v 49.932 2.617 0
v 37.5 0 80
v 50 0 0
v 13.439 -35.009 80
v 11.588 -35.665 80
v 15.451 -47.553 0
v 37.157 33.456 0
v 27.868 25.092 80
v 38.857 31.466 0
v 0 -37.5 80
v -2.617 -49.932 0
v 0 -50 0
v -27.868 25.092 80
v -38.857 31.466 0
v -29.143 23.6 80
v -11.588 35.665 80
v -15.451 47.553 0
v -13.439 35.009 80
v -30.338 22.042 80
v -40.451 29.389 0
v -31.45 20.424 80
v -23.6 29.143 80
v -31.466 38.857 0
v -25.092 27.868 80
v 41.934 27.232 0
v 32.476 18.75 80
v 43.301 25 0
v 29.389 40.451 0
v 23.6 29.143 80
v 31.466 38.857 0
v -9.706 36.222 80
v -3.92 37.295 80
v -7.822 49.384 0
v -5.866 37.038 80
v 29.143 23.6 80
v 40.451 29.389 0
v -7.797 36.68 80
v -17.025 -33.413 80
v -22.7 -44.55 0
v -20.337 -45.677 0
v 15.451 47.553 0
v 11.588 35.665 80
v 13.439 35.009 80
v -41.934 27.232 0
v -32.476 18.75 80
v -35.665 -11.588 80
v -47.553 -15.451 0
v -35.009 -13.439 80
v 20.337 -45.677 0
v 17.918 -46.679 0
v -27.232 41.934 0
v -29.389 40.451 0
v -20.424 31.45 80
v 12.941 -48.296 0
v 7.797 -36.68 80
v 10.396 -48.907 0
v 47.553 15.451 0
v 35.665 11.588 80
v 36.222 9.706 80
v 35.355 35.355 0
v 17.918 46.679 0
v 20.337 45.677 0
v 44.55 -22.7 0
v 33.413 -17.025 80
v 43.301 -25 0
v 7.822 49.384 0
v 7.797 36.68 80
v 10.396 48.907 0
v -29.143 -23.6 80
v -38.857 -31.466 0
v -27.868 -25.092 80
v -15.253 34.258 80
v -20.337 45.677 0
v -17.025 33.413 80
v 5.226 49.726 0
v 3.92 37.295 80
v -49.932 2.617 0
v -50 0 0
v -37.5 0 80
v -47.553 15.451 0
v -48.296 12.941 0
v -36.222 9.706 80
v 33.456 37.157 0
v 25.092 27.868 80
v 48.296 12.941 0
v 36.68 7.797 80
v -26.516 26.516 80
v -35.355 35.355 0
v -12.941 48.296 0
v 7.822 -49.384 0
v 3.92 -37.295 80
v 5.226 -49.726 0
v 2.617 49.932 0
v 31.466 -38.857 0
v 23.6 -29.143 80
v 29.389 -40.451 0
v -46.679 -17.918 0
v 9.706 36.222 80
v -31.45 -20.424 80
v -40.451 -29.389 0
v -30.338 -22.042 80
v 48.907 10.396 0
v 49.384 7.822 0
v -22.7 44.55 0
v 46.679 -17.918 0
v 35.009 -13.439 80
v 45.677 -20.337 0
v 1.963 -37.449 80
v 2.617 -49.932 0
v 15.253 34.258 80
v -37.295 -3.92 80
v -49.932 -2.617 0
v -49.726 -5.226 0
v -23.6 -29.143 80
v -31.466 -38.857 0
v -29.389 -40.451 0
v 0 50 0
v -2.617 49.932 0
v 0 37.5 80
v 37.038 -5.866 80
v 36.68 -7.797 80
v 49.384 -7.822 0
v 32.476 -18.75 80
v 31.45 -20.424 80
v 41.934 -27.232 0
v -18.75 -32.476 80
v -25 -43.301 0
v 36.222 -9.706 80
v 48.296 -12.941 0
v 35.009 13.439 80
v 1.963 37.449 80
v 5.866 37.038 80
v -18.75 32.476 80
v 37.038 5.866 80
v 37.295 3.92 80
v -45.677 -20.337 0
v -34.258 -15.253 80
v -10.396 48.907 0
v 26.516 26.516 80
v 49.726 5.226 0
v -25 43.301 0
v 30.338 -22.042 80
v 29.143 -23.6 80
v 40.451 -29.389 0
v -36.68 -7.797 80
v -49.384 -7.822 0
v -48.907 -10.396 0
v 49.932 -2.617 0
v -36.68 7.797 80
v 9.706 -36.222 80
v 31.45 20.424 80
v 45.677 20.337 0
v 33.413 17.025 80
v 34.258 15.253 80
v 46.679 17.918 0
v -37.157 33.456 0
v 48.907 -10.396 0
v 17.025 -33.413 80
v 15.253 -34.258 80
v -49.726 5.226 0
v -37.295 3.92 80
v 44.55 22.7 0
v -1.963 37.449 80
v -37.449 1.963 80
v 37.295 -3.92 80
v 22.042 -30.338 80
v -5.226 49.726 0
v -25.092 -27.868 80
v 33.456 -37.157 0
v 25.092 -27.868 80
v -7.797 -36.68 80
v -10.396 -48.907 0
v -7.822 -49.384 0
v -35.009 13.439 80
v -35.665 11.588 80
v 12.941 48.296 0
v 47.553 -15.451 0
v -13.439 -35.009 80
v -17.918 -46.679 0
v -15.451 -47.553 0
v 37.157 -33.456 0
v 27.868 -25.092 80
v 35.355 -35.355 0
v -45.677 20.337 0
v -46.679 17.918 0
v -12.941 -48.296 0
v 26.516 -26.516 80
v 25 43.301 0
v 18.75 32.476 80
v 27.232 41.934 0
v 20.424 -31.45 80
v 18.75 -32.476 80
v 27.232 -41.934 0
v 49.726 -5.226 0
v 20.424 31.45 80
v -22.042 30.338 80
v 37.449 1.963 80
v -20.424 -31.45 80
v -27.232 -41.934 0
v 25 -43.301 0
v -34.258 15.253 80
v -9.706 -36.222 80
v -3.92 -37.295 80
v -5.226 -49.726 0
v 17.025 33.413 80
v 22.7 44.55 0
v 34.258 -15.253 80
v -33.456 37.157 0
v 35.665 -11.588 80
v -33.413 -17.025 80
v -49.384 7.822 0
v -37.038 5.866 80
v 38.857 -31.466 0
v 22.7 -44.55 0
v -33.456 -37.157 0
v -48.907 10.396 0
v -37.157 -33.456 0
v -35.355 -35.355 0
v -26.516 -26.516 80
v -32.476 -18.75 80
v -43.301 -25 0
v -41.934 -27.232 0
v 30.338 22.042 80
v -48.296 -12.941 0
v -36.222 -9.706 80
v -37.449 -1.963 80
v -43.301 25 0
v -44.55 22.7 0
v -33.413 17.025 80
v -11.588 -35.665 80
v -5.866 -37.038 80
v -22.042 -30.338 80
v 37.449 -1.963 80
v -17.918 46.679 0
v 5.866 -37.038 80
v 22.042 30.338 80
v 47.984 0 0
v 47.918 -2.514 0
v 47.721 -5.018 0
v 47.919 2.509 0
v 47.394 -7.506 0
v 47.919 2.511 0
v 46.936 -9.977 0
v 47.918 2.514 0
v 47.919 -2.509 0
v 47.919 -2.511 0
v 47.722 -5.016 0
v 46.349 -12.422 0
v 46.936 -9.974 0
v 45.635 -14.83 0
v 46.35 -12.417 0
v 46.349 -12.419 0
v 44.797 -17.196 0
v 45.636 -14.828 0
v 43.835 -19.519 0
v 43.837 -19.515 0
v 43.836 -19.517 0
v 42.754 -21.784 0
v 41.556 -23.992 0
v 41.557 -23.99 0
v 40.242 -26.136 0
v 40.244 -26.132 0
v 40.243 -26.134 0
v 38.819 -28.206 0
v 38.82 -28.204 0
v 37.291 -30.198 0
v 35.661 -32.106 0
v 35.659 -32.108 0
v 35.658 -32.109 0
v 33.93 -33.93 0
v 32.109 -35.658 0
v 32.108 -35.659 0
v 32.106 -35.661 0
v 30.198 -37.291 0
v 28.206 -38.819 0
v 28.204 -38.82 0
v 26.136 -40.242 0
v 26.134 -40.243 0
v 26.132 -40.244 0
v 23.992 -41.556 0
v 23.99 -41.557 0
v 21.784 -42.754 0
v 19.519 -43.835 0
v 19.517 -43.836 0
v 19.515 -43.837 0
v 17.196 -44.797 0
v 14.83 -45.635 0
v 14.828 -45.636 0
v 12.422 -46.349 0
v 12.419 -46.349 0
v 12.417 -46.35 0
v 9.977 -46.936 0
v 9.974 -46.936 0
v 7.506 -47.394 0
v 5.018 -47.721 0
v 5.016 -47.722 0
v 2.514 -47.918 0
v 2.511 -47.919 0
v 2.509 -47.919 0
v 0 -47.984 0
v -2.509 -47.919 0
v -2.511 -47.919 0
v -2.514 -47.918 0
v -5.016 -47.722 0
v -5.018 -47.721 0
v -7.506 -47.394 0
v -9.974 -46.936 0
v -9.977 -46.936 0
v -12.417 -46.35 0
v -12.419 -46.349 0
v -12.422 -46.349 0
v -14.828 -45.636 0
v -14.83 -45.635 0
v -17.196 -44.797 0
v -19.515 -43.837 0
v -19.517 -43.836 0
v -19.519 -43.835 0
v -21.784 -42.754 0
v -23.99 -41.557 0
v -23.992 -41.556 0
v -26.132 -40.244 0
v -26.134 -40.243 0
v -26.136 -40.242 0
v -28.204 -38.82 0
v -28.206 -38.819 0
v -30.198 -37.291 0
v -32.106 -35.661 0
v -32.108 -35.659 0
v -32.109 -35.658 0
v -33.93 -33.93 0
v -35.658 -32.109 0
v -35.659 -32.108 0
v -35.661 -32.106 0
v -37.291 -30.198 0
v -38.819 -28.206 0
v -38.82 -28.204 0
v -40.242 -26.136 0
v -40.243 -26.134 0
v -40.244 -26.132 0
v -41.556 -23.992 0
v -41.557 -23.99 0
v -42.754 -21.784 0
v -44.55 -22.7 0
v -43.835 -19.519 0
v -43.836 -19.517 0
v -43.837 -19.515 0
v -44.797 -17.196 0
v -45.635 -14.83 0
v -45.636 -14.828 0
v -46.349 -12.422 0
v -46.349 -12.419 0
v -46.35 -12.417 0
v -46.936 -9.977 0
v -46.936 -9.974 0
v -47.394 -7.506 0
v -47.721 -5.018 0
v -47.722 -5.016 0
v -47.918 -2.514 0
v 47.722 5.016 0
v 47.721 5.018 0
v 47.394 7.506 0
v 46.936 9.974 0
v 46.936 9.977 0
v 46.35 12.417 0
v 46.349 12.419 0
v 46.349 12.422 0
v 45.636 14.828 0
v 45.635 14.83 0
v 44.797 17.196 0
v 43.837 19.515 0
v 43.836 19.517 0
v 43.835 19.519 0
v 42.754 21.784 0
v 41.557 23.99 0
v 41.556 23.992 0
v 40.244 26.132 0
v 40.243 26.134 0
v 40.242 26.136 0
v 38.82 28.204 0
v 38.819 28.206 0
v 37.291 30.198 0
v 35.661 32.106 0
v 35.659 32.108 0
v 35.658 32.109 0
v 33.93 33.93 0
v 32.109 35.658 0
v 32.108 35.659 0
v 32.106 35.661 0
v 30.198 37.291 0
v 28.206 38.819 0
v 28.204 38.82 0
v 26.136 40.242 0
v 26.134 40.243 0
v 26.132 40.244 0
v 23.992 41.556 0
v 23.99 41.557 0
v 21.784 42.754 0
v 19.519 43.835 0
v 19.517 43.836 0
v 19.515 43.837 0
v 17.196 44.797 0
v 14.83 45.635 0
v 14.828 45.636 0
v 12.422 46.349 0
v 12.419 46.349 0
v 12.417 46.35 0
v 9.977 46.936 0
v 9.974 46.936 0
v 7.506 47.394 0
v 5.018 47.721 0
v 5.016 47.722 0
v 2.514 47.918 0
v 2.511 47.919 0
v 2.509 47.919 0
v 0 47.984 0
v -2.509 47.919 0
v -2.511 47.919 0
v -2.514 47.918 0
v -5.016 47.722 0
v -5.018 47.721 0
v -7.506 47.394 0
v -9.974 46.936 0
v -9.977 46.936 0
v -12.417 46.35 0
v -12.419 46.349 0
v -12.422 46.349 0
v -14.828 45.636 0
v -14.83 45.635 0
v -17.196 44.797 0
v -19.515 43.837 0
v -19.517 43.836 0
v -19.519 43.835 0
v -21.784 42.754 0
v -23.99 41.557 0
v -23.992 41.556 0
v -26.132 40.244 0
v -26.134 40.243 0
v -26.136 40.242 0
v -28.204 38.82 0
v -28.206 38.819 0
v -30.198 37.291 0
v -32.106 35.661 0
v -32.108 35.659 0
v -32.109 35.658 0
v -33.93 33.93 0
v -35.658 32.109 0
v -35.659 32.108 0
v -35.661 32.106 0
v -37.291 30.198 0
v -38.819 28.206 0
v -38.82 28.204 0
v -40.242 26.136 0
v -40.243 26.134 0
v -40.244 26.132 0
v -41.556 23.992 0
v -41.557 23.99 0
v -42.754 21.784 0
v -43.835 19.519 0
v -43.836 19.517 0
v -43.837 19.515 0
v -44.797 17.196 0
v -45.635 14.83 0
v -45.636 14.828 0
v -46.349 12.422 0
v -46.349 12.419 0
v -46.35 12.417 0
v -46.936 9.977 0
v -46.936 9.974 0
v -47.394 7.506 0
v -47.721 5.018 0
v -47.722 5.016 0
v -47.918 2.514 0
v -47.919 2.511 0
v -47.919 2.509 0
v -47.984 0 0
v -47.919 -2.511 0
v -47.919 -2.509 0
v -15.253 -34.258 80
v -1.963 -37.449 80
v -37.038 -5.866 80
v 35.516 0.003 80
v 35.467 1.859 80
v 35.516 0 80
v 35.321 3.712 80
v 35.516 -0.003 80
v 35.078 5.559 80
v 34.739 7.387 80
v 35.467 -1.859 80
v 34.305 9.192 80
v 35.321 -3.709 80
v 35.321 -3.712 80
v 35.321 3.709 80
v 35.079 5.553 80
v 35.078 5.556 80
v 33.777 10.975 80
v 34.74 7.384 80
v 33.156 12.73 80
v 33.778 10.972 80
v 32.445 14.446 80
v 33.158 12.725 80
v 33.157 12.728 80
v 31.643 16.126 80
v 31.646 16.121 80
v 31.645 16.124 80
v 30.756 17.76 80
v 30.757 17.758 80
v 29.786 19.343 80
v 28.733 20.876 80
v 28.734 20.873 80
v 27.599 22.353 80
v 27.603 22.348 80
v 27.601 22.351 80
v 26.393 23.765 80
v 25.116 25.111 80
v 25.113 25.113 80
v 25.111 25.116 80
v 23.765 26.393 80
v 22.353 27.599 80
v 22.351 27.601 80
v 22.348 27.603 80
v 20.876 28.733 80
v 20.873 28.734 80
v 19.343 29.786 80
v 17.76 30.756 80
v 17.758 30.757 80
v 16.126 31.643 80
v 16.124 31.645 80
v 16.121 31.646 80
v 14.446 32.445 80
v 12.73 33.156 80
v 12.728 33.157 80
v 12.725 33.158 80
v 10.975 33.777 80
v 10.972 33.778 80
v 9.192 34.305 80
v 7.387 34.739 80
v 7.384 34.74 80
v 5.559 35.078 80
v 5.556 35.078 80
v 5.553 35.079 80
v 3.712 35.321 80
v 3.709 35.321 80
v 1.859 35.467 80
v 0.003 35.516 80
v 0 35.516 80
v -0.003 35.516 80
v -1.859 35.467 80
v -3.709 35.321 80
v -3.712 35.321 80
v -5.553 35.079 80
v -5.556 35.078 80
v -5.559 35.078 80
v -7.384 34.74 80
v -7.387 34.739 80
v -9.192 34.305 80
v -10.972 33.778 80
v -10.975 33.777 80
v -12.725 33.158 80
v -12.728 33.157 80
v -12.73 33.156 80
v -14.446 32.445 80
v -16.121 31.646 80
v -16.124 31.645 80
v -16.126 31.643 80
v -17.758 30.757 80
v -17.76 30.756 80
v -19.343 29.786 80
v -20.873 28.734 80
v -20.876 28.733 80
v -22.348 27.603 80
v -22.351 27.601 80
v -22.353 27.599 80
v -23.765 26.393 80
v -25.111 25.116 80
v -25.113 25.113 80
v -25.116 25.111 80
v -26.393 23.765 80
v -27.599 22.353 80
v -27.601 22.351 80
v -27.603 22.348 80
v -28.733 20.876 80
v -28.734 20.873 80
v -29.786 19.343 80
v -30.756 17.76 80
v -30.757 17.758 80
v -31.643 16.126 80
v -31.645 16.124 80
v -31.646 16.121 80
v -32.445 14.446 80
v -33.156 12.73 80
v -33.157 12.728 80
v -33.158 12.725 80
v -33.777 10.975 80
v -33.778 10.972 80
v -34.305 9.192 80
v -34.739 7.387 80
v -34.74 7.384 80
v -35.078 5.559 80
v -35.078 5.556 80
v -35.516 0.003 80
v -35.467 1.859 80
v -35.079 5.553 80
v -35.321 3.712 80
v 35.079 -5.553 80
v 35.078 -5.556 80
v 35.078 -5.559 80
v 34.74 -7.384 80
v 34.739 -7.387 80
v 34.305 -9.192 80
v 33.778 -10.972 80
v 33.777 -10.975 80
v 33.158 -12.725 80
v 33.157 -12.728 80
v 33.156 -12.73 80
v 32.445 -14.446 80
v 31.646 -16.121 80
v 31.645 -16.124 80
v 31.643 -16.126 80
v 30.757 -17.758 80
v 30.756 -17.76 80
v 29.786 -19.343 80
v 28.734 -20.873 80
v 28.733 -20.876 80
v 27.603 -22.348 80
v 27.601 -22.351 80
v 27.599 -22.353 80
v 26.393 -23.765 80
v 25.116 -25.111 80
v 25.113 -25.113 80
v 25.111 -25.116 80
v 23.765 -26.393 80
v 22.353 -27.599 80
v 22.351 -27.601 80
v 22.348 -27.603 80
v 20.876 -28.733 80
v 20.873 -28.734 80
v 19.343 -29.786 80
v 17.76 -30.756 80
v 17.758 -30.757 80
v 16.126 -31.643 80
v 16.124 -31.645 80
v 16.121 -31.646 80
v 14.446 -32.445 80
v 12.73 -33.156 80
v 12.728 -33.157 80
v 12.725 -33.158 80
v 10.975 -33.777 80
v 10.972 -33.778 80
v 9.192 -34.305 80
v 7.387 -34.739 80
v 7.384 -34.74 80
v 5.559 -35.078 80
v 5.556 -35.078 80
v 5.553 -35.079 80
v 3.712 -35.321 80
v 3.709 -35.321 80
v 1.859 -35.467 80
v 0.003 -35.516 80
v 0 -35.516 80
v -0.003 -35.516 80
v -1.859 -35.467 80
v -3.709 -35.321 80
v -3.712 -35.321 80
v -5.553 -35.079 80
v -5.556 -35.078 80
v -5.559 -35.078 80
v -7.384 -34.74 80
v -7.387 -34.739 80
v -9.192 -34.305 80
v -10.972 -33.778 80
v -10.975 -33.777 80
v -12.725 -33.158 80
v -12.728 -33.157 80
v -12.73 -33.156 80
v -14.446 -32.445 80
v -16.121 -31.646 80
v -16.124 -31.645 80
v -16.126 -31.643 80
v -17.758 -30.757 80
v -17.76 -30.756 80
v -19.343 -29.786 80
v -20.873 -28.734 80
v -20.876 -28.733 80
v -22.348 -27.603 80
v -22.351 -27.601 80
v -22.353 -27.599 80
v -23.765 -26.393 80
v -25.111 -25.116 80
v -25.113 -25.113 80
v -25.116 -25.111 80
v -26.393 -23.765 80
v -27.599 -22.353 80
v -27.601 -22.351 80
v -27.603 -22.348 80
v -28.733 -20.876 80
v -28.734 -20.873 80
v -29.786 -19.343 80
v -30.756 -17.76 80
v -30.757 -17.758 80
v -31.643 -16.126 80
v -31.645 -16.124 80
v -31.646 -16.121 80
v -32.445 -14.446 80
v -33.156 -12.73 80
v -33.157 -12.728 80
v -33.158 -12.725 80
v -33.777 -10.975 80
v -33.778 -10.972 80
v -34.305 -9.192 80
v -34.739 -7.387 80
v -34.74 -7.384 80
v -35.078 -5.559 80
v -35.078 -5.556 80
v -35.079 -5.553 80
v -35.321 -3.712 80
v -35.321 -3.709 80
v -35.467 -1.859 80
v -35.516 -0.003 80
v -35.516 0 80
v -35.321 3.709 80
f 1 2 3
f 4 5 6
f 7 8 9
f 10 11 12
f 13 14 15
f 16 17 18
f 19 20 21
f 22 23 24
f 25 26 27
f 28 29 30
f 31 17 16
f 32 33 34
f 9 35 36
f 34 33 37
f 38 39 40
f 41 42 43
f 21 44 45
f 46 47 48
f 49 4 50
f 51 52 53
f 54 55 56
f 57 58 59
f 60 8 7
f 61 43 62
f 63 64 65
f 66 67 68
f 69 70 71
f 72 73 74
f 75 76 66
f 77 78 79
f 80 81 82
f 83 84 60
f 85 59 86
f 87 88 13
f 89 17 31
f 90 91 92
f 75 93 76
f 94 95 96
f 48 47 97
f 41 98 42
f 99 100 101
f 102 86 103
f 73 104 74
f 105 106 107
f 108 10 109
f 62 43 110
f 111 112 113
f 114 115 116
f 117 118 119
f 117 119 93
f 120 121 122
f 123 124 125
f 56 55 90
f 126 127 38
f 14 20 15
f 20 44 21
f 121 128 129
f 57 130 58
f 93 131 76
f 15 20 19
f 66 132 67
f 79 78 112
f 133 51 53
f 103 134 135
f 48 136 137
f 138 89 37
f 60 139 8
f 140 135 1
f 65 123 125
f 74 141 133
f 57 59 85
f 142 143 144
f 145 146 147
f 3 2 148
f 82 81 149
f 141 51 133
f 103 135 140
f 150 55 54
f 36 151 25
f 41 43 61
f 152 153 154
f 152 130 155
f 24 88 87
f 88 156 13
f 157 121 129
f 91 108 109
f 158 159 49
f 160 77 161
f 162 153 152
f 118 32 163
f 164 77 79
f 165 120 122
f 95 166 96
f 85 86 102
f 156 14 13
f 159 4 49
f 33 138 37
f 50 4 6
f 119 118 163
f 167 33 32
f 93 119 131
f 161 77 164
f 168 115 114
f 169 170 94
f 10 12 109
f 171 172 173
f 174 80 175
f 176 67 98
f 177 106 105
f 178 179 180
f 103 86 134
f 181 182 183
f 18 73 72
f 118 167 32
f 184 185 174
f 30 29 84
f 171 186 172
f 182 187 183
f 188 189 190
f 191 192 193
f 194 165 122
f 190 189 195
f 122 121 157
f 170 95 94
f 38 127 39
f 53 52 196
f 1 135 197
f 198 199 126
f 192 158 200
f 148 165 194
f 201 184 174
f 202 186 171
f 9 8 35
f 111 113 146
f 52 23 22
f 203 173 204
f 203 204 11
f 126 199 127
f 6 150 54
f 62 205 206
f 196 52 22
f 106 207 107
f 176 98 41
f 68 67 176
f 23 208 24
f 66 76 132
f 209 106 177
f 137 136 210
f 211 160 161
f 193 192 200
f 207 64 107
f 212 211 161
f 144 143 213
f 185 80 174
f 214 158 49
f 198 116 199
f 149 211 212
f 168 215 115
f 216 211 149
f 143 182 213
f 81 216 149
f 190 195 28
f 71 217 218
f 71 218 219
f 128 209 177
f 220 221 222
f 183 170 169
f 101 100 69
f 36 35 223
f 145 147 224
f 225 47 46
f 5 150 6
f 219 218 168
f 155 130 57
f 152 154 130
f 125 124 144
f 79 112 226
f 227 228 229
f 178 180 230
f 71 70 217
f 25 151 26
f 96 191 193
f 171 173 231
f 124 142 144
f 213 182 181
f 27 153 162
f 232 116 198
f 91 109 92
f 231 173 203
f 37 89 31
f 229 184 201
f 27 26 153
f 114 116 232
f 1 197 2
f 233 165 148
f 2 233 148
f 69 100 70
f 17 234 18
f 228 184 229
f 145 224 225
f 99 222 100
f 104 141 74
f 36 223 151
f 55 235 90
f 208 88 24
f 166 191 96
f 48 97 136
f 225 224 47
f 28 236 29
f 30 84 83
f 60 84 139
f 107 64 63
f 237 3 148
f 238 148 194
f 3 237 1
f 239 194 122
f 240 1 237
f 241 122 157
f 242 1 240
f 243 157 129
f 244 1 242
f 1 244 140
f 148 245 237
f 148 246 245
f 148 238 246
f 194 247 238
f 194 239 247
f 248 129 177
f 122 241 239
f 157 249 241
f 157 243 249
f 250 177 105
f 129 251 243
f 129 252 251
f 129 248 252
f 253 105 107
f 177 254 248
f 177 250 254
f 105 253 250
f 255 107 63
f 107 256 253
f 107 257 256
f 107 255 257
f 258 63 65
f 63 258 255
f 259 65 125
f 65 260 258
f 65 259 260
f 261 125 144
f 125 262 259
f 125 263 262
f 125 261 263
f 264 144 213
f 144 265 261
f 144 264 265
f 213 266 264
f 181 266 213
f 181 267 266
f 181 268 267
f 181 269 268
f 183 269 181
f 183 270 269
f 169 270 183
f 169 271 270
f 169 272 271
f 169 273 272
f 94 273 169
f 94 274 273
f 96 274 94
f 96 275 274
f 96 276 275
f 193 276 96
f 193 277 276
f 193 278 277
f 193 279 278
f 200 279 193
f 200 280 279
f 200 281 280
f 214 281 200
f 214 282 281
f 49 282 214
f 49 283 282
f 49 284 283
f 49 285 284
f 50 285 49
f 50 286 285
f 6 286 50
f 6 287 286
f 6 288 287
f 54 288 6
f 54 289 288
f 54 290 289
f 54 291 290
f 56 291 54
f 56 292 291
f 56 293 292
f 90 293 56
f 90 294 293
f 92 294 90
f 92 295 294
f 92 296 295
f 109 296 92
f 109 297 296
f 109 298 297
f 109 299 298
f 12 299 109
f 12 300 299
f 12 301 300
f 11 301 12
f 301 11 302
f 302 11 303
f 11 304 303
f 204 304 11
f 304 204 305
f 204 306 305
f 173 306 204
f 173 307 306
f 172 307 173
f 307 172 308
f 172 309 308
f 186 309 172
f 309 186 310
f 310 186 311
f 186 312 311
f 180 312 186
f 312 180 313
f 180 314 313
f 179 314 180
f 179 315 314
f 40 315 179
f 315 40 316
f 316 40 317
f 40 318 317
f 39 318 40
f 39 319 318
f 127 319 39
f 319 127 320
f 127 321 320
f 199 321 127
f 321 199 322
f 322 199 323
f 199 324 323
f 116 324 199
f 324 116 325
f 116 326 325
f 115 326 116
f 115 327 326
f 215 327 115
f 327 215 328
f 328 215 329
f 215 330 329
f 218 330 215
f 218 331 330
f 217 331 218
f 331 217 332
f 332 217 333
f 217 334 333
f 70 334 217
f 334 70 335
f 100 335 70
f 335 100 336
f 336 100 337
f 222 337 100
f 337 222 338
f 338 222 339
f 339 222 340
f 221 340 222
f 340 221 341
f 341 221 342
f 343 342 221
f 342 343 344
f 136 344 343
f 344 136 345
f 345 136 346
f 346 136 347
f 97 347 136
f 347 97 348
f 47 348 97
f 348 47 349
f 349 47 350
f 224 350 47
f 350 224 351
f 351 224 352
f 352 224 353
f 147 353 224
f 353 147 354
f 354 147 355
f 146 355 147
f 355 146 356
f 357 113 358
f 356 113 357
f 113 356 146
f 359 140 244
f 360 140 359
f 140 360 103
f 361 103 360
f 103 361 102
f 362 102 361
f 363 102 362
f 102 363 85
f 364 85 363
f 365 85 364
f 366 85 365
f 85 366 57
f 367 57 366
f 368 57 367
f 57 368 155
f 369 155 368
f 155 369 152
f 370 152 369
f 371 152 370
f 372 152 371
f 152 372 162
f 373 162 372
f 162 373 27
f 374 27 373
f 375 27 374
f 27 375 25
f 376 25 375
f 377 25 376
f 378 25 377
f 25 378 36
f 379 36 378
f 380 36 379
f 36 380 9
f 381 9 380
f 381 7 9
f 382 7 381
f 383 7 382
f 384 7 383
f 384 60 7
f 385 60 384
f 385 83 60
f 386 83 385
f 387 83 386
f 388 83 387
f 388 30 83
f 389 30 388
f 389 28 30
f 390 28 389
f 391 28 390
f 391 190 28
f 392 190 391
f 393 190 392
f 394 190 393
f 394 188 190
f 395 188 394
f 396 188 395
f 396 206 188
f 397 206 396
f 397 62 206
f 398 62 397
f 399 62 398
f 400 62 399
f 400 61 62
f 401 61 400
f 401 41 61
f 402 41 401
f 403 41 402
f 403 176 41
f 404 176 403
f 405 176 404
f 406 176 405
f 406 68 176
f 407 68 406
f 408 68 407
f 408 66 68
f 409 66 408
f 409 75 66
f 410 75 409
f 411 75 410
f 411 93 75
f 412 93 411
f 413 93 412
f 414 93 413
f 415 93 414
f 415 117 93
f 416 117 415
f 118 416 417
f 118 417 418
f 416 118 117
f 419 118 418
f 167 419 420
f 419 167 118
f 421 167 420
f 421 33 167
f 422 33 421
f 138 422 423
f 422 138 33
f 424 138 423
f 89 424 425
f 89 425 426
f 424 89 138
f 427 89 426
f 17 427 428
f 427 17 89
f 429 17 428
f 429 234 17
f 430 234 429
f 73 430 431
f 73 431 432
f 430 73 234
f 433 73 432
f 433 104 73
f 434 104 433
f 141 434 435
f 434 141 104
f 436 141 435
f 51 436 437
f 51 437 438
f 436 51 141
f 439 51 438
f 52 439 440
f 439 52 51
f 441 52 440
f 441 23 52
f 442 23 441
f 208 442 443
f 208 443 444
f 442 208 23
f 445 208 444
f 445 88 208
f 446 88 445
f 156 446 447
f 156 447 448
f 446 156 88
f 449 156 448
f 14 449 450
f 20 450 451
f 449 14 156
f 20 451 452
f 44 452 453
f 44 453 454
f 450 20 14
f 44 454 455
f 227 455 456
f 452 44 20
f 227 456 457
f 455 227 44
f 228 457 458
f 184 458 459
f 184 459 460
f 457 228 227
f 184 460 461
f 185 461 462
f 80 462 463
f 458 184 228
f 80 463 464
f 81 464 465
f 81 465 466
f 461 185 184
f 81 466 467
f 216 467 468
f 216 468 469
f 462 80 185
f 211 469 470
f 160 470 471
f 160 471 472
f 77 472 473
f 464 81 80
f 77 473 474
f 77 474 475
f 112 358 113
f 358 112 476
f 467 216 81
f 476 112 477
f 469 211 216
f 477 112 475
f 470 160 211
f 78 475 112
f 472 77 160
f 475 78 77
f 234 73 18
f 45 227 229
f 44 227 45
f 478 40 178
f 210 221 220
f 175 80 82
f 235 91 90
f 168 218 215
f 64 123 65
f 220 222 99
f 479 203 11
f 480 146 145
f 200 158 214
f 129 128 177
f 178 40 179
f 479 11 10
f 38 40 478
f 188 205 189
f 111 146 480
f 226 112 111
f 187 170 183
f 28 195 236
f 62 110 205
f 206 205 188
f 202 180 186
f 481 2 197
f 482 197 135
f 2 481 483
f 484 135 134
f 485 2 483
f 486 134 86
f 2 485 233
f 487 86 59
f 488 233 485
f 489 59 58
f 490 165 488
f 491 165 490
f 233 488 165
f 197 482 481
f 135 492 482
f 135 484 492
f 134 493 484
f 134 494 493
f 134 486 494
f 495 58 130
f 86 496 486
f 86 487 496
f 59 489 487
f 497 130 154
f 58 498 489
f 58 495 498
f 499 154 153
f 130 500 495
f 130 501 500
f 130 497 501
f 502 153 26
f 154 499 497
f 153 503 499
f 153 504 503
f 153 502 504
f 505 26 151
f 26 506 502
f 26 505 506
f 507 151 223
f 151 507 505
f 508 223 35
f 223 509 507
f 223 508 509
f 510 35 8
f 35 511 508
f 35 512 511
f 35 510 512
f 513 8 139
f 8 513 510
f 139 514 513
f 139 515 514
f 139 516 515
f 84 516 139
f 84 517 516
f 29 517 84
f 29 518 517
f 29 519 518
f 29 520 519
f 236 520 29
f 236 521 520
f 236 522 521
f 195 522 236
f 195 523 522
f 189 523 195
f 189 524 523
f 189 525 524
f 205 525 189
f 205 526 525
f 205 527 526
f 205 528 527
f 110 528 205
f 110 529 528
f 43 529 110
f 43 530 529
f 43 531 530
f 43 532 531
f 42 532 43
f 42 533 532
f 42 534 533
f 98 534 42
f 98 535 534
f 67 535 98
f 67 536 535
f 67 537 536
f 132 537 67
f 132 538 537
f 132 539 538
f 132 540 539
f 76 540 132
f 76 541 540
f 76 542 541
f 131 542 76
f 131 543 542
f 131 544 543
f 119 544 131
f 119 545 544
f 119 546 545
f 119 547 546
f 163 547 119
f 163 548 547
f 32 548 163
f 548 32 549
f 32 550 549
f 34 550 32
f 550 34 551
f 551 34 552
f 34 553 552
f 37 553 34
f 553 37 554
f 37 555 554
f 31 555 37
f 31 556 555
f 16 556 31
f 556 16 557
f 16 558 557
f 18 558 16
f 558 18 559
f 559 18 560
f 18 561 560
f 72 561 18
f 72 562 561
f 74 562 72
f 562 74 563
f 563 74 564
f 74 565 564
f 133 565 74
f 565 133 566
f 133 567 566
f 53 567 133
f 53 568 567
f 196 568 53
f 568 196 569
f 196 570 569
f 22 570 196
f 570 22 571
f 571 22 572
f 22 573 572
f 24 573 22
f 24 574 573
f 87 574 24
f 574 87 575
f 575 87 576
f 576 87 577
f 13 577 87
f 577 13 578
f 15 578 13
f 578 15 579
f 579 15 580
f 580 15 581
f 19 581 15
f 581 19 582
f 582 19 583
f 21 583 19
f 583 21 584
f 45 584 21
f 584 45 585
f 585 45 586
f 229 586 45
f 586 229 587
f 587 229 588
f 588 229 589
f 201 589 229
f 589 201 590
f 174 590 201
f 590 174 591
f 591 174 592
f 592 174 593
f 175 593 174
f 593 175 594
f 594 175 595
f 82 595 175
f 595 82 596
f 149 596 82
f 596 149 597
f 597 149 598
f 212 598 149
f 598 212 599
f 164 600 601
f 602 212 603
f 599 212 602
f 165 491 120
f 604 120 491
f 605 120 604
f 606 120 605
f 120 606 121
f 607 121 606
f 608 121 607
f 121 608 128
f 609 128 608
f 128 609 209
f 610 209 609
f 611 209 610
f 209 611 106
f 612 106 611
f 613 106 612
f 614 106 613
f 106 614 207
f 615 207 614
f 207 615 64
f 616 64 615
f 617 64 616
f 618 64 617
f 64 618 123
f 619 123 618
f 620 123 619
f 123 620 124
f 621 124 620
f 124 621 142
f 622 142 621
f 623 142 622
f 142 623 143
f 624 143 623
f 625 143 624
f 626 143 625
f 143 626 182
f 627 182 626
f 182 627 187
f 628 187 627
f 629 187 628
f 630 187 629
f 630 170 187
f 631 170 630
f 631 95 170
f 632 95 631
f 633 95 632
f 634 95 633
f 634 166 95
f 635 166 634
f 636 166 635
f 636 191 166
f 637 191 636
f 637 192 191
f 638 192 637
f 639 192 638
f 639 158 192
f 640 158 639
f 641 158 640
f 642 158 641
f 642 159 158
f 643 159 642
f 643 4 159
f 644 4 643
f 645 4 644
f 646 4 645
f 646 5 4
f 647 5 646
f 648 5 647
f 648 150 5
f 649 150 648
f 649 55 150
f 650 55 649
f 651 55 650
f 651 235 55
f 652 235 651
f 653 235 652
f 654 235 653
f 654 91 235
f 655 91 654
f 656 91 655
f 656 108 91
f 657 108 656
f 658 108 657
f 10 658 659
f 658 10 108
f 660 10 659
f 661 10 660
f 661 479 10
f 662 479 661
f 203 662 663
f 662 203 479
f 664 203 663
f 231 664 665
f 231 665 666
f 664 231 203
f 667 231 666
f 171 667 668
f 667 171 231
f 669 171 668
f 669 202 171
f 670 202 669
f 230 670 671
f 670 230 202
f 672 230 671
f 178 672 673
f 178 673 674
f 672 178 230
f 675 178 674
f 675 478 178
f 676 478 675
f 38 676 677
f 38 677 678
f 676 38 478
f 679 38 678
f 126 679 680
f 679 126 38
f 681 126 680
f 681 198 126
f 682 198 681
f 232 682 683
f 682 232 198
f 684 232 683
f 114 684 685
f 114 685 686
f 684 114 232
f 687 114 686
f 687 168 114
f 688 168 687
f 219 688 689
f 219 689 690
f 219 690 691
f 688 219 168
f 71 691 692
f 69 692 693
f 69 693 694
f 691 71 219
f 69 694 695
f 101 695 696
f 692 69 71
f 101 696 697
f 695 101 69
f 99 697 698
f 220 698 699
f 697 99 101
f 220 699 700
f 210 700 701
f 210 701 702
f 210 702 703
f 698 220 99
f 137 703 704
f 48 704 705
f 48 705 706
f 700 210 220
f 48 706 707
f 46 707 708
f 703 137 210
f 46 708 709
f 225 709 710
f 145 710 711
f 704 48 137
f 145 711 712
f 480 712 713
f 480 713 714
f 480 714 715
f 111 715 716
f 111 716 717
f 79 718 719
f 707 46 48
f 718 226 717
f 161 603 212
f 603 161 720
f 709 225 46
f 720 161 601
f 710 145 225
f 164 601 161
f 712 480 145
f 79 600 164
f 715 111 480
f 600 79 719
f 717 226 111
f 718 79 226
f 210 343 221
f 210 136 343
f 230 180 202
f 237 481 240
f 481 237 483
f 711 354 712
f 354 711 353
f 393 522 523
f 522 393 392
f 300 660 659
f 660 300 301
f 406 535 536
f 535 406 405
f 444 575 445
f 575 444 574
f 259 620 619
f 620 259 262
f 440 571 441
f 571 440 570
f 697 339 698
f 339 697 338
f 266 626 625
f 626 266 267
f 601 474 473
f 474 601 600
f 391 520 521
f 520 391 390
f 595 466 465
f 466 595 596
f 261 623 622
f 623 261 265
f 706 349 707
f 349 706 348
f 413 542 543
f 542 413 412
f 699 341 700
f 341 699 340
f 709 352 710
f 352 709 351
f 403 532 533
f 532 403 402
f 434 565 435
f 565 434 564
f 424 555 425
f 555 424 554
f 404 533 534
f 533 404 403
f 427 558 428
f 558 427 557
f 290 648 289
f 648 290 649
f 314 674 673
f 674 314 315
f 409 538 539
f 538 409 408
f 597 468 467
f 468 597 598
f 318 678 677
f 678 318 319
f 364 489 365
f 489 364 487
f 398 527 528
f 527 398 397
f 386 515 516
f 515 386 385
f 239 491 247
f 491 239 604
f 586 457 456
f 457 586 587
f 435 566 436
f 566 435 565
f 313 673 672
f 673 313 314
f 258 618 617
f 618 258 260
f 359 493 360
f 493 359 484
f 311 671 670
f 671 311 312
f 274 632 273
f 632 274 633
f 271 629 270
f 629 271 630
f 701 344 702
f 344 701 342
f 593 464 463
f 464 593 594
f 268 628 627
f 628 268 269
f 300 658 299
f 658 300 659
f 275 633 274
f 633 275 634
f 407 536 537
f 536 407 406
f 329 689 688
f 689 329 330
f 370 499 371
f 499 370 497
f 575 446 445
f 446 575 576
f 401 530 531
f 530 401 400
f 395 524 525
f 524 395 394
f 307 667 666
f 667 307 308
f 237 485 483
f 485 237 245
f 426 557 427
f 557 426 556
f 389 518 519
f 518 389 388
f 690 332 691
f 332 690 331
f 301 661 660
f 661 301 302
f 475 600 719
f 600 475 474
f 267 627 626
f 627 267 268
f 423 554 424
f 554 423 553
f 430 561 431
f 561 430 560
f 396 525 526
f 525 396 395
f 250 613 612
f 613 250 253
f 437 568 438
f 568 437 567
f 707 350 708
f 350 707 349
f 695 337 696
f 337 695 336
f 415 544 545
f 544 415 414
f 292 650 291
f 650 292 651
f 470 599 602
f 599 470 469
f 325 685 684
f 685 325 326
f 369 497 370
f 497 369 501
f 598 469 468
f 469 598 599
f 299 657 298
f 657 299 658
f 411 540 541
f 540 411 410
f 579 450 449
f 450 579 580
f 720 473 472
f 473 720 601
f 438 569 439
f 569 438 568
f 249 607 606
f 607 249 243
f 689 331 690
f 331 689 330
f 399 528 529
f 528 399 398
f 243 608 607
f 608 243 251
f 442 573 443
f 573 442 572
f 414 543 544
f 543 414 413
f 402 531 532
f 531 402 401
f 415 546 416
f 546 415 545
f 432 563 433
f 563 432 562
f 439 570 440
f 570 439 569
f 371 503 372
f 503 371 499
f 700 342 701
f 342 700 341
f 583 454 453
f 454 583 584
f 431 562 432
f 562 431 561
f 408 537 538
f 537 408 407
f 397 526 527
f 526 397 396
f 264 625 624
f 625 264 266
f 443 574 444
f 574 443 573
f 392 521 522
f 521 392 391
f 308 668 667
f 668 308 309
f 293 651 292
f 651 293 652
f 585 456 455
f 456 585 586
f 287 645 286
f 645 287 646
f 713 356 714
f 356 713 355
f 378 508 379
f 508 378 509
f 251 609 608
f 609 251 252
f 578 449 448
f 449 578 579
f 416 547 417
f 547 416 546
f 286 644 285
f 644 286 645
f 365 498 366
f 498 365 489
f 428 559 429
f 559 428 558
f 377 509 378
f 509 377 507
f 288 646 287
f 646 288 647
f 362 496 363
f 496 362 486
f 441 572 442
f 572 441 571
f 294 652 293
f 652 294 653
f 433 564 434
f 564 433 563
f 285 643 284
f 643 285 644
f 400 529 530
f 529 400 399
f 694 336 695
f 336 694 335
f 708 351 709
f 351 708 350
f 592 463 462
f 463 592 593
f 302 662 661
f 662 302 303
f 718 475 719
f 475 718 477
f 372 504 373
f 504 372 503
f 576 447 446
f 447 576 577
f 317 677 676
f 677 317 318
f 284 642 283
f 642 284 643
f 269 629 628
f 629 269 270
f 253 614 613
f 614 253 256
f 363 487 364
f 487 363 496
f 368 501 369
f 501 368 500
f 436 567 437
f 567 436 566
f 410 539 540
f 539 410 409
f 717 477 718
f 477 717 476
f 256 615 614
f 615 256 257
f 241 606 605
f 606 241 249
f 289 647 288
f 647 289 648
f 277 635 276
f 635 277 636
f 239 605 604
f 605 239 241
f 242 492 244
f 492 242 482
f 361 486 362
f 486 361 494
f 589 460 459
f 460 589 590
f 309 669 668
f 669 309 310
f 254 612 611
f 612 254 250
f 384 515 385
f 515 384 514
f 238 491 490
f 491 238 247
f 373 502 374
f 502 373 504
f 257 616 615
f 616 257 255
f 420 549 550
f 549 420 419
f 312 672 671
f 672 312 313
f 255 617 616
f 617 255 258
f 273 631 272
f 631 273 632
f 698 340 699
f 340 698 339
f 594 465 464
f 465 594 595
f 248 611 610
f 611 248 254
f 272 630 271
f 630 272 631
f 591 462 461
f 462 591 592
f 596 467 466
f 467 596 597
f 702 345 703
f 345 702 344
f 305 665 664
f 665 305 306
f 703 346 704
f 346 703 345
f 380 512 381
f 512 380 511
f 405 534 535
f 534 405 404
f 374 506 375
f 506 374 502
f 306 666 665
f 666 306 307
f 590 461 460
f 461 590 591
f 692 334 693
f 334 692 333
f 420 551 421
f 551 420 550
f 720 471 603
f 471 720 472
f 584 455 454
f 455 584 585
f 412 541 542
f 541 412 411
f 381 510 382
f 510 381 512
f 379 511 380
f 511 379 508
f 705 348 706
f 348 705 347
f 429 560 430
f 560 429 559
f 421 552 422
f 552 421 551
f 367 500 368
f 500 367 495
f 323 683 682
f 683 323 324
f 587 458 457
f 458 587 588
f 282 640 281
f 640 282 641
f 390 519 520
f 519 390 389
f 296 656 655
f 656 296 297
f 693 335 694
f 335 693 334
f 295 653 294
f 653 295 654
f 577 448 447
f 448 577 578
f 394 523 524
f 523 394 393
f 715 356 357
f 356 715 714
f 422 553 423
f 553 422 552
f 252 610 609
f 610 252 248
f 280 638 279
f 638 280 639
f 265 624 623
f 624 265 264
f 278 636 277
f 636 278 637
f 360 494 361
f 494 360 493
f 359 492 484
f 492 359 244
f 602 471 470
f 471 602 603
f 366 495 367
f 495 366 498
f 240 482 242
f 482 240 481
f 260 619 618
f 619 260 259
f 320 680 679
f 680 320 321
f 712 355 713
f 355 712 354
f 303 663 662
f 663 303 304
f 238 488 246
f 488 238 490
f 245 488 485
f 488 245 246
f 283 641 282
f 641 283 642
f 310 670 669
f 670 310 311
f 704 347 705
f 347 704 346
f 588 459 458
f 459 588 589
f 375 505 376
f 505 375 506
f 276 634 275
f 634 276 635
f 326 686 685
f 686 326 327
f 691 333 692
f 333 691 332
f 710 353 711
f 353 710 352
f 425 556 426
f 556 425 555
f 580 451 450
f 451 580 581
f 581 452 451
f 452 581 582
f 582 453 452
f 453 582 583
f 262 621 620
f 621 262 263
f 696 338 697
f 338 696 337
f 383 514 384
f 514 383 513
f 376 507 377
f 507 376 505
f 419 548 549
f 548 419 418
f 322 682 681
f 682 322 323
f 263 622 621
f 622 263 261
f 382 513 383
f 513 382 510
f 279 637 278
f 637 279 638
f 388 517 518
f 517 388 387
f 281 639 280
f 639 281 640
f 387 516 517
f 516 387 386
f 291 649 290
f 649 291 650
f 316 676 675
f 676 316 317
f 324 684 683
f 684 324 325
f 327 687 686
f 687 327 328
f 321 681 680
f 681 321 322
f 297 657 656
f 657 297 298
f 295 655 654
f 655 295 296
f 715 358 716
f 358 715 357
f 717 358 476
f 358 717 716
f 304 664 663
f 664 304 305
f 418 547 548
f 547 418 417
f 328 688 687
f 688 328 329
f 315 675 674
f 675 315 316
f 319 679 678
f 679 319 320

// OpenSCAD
// file: bambu-x1c.scad
// Bambu Lab X1 Carbon — build volume and dimension reporting

BED_X = 256;
BED_Y = 256;
BED_Z = 256;

// Assert a part fits within the build volume.
// Call with the bounding box dimensions of your part.
module assert_fits(x, y, z) {
  assert(x <= BED_X, str("Part X (", x, "mm) exceeds bed X (", BED_X, "mm)"));
  assert(y <= BED_Y, str("Part Y (", y, "mm) exceeds bed Y (", BED_Y, "mm)"));
  assert(z <= BED_Z, str("Part Z (", z, "mm) exceeds bed Z (", BED_Z, "mm)"));
}

// Echo dimensions in a parseable format for the Node.js pipeline.
// Call at the end of your .scad file with the part's bounding box.
module report_dimensions(x, y, z, label="part") {
  assert_fits(x, y, z);
  echo(str("DIMENSION:", label, ":x=", x));
  echo(str("DIMENSION:", label, ":y=", y));
  echo(str("DIMENSION:", label, ":z=", z));
}
// file: fdm-pla.scad
// FDM PLA Tolerance Constants
// Use these in all designs to ensure proper fit on the Bambu X1C.

// Fit offsets (applied to radius or per-side dimension)
FDM_PRESS_FIT     = -0.15;  // Friction-held joints
FDM_CLEARANCE_FIT =  0.25;  // Easy insert/remove
FDM_SLIDING_FIT   =  0.35;  // Moving parts

// Hole compensation (applied to diameter)
FDM_HOLE_COMPENSATION = 0.4;

// Structural minimums
MIN_WALL = 1.2;       // 3 perimeters at 0.4mm nozzle
MIN_FLOOR_CEIL = 0.8; // 4 layers at 0.2mm

// Overhang and bridging limits
MAX_OVERHANG_ANGLE = 45;  // degrees from vertical
MAX_BRIDGE_SPAN    = 10;  // mm unsupported horizontal span

// Layer and nozzle
NOZZLE_DIA   = 0.4;
LAYER_HEIGHT = 0.2;
// main file
// Vent Adapter — parametric cone adapter between two duct diameters
// Uses scad-lib for FDM tolerances and build volume checks.

include <fdm-pla.scad>
include <bambu-x1c.scad>

// Parameters (overridable via -D flags)
bottom_diameter = 100;  // mm — larger duct opening
top_diameter    = 75;   // mm — smaller duct opening
height          = 80;   // mm — adapter height
wall_thickness  = 2.0;  // mm — wall thickness (>= MIN_WALL)

// Derived values
bottom_r = bottom_diameter / 2;
top_r    = top_diameter / 2;
inner_bottom_r = bottom_r - wall_thickness;
inner_top_r    = top_r - wall_thickness;

$fn = 120;

// Validate wall thickness
assert(wall_thickness >= MIN_WALL,
  str("Wall thickness ", wall_thickness, "mm is below minimum ", MIN_WALL, "mm"));

// Report dimensions for pipeline validation
report_dimensions(bottom_diameter, bottom_diameter, height, "adapter");

// Main geometry
difference() {
  // Outer cone
  cylinder(h=height, r1=bottom_r, r2=top_r);

  // Inner cone (hollow)
  translate([0, 0, -0.1])
    cylinder(h=height + 0.2, r1=inner_bottom_r, r2=inner_top_r);
}
